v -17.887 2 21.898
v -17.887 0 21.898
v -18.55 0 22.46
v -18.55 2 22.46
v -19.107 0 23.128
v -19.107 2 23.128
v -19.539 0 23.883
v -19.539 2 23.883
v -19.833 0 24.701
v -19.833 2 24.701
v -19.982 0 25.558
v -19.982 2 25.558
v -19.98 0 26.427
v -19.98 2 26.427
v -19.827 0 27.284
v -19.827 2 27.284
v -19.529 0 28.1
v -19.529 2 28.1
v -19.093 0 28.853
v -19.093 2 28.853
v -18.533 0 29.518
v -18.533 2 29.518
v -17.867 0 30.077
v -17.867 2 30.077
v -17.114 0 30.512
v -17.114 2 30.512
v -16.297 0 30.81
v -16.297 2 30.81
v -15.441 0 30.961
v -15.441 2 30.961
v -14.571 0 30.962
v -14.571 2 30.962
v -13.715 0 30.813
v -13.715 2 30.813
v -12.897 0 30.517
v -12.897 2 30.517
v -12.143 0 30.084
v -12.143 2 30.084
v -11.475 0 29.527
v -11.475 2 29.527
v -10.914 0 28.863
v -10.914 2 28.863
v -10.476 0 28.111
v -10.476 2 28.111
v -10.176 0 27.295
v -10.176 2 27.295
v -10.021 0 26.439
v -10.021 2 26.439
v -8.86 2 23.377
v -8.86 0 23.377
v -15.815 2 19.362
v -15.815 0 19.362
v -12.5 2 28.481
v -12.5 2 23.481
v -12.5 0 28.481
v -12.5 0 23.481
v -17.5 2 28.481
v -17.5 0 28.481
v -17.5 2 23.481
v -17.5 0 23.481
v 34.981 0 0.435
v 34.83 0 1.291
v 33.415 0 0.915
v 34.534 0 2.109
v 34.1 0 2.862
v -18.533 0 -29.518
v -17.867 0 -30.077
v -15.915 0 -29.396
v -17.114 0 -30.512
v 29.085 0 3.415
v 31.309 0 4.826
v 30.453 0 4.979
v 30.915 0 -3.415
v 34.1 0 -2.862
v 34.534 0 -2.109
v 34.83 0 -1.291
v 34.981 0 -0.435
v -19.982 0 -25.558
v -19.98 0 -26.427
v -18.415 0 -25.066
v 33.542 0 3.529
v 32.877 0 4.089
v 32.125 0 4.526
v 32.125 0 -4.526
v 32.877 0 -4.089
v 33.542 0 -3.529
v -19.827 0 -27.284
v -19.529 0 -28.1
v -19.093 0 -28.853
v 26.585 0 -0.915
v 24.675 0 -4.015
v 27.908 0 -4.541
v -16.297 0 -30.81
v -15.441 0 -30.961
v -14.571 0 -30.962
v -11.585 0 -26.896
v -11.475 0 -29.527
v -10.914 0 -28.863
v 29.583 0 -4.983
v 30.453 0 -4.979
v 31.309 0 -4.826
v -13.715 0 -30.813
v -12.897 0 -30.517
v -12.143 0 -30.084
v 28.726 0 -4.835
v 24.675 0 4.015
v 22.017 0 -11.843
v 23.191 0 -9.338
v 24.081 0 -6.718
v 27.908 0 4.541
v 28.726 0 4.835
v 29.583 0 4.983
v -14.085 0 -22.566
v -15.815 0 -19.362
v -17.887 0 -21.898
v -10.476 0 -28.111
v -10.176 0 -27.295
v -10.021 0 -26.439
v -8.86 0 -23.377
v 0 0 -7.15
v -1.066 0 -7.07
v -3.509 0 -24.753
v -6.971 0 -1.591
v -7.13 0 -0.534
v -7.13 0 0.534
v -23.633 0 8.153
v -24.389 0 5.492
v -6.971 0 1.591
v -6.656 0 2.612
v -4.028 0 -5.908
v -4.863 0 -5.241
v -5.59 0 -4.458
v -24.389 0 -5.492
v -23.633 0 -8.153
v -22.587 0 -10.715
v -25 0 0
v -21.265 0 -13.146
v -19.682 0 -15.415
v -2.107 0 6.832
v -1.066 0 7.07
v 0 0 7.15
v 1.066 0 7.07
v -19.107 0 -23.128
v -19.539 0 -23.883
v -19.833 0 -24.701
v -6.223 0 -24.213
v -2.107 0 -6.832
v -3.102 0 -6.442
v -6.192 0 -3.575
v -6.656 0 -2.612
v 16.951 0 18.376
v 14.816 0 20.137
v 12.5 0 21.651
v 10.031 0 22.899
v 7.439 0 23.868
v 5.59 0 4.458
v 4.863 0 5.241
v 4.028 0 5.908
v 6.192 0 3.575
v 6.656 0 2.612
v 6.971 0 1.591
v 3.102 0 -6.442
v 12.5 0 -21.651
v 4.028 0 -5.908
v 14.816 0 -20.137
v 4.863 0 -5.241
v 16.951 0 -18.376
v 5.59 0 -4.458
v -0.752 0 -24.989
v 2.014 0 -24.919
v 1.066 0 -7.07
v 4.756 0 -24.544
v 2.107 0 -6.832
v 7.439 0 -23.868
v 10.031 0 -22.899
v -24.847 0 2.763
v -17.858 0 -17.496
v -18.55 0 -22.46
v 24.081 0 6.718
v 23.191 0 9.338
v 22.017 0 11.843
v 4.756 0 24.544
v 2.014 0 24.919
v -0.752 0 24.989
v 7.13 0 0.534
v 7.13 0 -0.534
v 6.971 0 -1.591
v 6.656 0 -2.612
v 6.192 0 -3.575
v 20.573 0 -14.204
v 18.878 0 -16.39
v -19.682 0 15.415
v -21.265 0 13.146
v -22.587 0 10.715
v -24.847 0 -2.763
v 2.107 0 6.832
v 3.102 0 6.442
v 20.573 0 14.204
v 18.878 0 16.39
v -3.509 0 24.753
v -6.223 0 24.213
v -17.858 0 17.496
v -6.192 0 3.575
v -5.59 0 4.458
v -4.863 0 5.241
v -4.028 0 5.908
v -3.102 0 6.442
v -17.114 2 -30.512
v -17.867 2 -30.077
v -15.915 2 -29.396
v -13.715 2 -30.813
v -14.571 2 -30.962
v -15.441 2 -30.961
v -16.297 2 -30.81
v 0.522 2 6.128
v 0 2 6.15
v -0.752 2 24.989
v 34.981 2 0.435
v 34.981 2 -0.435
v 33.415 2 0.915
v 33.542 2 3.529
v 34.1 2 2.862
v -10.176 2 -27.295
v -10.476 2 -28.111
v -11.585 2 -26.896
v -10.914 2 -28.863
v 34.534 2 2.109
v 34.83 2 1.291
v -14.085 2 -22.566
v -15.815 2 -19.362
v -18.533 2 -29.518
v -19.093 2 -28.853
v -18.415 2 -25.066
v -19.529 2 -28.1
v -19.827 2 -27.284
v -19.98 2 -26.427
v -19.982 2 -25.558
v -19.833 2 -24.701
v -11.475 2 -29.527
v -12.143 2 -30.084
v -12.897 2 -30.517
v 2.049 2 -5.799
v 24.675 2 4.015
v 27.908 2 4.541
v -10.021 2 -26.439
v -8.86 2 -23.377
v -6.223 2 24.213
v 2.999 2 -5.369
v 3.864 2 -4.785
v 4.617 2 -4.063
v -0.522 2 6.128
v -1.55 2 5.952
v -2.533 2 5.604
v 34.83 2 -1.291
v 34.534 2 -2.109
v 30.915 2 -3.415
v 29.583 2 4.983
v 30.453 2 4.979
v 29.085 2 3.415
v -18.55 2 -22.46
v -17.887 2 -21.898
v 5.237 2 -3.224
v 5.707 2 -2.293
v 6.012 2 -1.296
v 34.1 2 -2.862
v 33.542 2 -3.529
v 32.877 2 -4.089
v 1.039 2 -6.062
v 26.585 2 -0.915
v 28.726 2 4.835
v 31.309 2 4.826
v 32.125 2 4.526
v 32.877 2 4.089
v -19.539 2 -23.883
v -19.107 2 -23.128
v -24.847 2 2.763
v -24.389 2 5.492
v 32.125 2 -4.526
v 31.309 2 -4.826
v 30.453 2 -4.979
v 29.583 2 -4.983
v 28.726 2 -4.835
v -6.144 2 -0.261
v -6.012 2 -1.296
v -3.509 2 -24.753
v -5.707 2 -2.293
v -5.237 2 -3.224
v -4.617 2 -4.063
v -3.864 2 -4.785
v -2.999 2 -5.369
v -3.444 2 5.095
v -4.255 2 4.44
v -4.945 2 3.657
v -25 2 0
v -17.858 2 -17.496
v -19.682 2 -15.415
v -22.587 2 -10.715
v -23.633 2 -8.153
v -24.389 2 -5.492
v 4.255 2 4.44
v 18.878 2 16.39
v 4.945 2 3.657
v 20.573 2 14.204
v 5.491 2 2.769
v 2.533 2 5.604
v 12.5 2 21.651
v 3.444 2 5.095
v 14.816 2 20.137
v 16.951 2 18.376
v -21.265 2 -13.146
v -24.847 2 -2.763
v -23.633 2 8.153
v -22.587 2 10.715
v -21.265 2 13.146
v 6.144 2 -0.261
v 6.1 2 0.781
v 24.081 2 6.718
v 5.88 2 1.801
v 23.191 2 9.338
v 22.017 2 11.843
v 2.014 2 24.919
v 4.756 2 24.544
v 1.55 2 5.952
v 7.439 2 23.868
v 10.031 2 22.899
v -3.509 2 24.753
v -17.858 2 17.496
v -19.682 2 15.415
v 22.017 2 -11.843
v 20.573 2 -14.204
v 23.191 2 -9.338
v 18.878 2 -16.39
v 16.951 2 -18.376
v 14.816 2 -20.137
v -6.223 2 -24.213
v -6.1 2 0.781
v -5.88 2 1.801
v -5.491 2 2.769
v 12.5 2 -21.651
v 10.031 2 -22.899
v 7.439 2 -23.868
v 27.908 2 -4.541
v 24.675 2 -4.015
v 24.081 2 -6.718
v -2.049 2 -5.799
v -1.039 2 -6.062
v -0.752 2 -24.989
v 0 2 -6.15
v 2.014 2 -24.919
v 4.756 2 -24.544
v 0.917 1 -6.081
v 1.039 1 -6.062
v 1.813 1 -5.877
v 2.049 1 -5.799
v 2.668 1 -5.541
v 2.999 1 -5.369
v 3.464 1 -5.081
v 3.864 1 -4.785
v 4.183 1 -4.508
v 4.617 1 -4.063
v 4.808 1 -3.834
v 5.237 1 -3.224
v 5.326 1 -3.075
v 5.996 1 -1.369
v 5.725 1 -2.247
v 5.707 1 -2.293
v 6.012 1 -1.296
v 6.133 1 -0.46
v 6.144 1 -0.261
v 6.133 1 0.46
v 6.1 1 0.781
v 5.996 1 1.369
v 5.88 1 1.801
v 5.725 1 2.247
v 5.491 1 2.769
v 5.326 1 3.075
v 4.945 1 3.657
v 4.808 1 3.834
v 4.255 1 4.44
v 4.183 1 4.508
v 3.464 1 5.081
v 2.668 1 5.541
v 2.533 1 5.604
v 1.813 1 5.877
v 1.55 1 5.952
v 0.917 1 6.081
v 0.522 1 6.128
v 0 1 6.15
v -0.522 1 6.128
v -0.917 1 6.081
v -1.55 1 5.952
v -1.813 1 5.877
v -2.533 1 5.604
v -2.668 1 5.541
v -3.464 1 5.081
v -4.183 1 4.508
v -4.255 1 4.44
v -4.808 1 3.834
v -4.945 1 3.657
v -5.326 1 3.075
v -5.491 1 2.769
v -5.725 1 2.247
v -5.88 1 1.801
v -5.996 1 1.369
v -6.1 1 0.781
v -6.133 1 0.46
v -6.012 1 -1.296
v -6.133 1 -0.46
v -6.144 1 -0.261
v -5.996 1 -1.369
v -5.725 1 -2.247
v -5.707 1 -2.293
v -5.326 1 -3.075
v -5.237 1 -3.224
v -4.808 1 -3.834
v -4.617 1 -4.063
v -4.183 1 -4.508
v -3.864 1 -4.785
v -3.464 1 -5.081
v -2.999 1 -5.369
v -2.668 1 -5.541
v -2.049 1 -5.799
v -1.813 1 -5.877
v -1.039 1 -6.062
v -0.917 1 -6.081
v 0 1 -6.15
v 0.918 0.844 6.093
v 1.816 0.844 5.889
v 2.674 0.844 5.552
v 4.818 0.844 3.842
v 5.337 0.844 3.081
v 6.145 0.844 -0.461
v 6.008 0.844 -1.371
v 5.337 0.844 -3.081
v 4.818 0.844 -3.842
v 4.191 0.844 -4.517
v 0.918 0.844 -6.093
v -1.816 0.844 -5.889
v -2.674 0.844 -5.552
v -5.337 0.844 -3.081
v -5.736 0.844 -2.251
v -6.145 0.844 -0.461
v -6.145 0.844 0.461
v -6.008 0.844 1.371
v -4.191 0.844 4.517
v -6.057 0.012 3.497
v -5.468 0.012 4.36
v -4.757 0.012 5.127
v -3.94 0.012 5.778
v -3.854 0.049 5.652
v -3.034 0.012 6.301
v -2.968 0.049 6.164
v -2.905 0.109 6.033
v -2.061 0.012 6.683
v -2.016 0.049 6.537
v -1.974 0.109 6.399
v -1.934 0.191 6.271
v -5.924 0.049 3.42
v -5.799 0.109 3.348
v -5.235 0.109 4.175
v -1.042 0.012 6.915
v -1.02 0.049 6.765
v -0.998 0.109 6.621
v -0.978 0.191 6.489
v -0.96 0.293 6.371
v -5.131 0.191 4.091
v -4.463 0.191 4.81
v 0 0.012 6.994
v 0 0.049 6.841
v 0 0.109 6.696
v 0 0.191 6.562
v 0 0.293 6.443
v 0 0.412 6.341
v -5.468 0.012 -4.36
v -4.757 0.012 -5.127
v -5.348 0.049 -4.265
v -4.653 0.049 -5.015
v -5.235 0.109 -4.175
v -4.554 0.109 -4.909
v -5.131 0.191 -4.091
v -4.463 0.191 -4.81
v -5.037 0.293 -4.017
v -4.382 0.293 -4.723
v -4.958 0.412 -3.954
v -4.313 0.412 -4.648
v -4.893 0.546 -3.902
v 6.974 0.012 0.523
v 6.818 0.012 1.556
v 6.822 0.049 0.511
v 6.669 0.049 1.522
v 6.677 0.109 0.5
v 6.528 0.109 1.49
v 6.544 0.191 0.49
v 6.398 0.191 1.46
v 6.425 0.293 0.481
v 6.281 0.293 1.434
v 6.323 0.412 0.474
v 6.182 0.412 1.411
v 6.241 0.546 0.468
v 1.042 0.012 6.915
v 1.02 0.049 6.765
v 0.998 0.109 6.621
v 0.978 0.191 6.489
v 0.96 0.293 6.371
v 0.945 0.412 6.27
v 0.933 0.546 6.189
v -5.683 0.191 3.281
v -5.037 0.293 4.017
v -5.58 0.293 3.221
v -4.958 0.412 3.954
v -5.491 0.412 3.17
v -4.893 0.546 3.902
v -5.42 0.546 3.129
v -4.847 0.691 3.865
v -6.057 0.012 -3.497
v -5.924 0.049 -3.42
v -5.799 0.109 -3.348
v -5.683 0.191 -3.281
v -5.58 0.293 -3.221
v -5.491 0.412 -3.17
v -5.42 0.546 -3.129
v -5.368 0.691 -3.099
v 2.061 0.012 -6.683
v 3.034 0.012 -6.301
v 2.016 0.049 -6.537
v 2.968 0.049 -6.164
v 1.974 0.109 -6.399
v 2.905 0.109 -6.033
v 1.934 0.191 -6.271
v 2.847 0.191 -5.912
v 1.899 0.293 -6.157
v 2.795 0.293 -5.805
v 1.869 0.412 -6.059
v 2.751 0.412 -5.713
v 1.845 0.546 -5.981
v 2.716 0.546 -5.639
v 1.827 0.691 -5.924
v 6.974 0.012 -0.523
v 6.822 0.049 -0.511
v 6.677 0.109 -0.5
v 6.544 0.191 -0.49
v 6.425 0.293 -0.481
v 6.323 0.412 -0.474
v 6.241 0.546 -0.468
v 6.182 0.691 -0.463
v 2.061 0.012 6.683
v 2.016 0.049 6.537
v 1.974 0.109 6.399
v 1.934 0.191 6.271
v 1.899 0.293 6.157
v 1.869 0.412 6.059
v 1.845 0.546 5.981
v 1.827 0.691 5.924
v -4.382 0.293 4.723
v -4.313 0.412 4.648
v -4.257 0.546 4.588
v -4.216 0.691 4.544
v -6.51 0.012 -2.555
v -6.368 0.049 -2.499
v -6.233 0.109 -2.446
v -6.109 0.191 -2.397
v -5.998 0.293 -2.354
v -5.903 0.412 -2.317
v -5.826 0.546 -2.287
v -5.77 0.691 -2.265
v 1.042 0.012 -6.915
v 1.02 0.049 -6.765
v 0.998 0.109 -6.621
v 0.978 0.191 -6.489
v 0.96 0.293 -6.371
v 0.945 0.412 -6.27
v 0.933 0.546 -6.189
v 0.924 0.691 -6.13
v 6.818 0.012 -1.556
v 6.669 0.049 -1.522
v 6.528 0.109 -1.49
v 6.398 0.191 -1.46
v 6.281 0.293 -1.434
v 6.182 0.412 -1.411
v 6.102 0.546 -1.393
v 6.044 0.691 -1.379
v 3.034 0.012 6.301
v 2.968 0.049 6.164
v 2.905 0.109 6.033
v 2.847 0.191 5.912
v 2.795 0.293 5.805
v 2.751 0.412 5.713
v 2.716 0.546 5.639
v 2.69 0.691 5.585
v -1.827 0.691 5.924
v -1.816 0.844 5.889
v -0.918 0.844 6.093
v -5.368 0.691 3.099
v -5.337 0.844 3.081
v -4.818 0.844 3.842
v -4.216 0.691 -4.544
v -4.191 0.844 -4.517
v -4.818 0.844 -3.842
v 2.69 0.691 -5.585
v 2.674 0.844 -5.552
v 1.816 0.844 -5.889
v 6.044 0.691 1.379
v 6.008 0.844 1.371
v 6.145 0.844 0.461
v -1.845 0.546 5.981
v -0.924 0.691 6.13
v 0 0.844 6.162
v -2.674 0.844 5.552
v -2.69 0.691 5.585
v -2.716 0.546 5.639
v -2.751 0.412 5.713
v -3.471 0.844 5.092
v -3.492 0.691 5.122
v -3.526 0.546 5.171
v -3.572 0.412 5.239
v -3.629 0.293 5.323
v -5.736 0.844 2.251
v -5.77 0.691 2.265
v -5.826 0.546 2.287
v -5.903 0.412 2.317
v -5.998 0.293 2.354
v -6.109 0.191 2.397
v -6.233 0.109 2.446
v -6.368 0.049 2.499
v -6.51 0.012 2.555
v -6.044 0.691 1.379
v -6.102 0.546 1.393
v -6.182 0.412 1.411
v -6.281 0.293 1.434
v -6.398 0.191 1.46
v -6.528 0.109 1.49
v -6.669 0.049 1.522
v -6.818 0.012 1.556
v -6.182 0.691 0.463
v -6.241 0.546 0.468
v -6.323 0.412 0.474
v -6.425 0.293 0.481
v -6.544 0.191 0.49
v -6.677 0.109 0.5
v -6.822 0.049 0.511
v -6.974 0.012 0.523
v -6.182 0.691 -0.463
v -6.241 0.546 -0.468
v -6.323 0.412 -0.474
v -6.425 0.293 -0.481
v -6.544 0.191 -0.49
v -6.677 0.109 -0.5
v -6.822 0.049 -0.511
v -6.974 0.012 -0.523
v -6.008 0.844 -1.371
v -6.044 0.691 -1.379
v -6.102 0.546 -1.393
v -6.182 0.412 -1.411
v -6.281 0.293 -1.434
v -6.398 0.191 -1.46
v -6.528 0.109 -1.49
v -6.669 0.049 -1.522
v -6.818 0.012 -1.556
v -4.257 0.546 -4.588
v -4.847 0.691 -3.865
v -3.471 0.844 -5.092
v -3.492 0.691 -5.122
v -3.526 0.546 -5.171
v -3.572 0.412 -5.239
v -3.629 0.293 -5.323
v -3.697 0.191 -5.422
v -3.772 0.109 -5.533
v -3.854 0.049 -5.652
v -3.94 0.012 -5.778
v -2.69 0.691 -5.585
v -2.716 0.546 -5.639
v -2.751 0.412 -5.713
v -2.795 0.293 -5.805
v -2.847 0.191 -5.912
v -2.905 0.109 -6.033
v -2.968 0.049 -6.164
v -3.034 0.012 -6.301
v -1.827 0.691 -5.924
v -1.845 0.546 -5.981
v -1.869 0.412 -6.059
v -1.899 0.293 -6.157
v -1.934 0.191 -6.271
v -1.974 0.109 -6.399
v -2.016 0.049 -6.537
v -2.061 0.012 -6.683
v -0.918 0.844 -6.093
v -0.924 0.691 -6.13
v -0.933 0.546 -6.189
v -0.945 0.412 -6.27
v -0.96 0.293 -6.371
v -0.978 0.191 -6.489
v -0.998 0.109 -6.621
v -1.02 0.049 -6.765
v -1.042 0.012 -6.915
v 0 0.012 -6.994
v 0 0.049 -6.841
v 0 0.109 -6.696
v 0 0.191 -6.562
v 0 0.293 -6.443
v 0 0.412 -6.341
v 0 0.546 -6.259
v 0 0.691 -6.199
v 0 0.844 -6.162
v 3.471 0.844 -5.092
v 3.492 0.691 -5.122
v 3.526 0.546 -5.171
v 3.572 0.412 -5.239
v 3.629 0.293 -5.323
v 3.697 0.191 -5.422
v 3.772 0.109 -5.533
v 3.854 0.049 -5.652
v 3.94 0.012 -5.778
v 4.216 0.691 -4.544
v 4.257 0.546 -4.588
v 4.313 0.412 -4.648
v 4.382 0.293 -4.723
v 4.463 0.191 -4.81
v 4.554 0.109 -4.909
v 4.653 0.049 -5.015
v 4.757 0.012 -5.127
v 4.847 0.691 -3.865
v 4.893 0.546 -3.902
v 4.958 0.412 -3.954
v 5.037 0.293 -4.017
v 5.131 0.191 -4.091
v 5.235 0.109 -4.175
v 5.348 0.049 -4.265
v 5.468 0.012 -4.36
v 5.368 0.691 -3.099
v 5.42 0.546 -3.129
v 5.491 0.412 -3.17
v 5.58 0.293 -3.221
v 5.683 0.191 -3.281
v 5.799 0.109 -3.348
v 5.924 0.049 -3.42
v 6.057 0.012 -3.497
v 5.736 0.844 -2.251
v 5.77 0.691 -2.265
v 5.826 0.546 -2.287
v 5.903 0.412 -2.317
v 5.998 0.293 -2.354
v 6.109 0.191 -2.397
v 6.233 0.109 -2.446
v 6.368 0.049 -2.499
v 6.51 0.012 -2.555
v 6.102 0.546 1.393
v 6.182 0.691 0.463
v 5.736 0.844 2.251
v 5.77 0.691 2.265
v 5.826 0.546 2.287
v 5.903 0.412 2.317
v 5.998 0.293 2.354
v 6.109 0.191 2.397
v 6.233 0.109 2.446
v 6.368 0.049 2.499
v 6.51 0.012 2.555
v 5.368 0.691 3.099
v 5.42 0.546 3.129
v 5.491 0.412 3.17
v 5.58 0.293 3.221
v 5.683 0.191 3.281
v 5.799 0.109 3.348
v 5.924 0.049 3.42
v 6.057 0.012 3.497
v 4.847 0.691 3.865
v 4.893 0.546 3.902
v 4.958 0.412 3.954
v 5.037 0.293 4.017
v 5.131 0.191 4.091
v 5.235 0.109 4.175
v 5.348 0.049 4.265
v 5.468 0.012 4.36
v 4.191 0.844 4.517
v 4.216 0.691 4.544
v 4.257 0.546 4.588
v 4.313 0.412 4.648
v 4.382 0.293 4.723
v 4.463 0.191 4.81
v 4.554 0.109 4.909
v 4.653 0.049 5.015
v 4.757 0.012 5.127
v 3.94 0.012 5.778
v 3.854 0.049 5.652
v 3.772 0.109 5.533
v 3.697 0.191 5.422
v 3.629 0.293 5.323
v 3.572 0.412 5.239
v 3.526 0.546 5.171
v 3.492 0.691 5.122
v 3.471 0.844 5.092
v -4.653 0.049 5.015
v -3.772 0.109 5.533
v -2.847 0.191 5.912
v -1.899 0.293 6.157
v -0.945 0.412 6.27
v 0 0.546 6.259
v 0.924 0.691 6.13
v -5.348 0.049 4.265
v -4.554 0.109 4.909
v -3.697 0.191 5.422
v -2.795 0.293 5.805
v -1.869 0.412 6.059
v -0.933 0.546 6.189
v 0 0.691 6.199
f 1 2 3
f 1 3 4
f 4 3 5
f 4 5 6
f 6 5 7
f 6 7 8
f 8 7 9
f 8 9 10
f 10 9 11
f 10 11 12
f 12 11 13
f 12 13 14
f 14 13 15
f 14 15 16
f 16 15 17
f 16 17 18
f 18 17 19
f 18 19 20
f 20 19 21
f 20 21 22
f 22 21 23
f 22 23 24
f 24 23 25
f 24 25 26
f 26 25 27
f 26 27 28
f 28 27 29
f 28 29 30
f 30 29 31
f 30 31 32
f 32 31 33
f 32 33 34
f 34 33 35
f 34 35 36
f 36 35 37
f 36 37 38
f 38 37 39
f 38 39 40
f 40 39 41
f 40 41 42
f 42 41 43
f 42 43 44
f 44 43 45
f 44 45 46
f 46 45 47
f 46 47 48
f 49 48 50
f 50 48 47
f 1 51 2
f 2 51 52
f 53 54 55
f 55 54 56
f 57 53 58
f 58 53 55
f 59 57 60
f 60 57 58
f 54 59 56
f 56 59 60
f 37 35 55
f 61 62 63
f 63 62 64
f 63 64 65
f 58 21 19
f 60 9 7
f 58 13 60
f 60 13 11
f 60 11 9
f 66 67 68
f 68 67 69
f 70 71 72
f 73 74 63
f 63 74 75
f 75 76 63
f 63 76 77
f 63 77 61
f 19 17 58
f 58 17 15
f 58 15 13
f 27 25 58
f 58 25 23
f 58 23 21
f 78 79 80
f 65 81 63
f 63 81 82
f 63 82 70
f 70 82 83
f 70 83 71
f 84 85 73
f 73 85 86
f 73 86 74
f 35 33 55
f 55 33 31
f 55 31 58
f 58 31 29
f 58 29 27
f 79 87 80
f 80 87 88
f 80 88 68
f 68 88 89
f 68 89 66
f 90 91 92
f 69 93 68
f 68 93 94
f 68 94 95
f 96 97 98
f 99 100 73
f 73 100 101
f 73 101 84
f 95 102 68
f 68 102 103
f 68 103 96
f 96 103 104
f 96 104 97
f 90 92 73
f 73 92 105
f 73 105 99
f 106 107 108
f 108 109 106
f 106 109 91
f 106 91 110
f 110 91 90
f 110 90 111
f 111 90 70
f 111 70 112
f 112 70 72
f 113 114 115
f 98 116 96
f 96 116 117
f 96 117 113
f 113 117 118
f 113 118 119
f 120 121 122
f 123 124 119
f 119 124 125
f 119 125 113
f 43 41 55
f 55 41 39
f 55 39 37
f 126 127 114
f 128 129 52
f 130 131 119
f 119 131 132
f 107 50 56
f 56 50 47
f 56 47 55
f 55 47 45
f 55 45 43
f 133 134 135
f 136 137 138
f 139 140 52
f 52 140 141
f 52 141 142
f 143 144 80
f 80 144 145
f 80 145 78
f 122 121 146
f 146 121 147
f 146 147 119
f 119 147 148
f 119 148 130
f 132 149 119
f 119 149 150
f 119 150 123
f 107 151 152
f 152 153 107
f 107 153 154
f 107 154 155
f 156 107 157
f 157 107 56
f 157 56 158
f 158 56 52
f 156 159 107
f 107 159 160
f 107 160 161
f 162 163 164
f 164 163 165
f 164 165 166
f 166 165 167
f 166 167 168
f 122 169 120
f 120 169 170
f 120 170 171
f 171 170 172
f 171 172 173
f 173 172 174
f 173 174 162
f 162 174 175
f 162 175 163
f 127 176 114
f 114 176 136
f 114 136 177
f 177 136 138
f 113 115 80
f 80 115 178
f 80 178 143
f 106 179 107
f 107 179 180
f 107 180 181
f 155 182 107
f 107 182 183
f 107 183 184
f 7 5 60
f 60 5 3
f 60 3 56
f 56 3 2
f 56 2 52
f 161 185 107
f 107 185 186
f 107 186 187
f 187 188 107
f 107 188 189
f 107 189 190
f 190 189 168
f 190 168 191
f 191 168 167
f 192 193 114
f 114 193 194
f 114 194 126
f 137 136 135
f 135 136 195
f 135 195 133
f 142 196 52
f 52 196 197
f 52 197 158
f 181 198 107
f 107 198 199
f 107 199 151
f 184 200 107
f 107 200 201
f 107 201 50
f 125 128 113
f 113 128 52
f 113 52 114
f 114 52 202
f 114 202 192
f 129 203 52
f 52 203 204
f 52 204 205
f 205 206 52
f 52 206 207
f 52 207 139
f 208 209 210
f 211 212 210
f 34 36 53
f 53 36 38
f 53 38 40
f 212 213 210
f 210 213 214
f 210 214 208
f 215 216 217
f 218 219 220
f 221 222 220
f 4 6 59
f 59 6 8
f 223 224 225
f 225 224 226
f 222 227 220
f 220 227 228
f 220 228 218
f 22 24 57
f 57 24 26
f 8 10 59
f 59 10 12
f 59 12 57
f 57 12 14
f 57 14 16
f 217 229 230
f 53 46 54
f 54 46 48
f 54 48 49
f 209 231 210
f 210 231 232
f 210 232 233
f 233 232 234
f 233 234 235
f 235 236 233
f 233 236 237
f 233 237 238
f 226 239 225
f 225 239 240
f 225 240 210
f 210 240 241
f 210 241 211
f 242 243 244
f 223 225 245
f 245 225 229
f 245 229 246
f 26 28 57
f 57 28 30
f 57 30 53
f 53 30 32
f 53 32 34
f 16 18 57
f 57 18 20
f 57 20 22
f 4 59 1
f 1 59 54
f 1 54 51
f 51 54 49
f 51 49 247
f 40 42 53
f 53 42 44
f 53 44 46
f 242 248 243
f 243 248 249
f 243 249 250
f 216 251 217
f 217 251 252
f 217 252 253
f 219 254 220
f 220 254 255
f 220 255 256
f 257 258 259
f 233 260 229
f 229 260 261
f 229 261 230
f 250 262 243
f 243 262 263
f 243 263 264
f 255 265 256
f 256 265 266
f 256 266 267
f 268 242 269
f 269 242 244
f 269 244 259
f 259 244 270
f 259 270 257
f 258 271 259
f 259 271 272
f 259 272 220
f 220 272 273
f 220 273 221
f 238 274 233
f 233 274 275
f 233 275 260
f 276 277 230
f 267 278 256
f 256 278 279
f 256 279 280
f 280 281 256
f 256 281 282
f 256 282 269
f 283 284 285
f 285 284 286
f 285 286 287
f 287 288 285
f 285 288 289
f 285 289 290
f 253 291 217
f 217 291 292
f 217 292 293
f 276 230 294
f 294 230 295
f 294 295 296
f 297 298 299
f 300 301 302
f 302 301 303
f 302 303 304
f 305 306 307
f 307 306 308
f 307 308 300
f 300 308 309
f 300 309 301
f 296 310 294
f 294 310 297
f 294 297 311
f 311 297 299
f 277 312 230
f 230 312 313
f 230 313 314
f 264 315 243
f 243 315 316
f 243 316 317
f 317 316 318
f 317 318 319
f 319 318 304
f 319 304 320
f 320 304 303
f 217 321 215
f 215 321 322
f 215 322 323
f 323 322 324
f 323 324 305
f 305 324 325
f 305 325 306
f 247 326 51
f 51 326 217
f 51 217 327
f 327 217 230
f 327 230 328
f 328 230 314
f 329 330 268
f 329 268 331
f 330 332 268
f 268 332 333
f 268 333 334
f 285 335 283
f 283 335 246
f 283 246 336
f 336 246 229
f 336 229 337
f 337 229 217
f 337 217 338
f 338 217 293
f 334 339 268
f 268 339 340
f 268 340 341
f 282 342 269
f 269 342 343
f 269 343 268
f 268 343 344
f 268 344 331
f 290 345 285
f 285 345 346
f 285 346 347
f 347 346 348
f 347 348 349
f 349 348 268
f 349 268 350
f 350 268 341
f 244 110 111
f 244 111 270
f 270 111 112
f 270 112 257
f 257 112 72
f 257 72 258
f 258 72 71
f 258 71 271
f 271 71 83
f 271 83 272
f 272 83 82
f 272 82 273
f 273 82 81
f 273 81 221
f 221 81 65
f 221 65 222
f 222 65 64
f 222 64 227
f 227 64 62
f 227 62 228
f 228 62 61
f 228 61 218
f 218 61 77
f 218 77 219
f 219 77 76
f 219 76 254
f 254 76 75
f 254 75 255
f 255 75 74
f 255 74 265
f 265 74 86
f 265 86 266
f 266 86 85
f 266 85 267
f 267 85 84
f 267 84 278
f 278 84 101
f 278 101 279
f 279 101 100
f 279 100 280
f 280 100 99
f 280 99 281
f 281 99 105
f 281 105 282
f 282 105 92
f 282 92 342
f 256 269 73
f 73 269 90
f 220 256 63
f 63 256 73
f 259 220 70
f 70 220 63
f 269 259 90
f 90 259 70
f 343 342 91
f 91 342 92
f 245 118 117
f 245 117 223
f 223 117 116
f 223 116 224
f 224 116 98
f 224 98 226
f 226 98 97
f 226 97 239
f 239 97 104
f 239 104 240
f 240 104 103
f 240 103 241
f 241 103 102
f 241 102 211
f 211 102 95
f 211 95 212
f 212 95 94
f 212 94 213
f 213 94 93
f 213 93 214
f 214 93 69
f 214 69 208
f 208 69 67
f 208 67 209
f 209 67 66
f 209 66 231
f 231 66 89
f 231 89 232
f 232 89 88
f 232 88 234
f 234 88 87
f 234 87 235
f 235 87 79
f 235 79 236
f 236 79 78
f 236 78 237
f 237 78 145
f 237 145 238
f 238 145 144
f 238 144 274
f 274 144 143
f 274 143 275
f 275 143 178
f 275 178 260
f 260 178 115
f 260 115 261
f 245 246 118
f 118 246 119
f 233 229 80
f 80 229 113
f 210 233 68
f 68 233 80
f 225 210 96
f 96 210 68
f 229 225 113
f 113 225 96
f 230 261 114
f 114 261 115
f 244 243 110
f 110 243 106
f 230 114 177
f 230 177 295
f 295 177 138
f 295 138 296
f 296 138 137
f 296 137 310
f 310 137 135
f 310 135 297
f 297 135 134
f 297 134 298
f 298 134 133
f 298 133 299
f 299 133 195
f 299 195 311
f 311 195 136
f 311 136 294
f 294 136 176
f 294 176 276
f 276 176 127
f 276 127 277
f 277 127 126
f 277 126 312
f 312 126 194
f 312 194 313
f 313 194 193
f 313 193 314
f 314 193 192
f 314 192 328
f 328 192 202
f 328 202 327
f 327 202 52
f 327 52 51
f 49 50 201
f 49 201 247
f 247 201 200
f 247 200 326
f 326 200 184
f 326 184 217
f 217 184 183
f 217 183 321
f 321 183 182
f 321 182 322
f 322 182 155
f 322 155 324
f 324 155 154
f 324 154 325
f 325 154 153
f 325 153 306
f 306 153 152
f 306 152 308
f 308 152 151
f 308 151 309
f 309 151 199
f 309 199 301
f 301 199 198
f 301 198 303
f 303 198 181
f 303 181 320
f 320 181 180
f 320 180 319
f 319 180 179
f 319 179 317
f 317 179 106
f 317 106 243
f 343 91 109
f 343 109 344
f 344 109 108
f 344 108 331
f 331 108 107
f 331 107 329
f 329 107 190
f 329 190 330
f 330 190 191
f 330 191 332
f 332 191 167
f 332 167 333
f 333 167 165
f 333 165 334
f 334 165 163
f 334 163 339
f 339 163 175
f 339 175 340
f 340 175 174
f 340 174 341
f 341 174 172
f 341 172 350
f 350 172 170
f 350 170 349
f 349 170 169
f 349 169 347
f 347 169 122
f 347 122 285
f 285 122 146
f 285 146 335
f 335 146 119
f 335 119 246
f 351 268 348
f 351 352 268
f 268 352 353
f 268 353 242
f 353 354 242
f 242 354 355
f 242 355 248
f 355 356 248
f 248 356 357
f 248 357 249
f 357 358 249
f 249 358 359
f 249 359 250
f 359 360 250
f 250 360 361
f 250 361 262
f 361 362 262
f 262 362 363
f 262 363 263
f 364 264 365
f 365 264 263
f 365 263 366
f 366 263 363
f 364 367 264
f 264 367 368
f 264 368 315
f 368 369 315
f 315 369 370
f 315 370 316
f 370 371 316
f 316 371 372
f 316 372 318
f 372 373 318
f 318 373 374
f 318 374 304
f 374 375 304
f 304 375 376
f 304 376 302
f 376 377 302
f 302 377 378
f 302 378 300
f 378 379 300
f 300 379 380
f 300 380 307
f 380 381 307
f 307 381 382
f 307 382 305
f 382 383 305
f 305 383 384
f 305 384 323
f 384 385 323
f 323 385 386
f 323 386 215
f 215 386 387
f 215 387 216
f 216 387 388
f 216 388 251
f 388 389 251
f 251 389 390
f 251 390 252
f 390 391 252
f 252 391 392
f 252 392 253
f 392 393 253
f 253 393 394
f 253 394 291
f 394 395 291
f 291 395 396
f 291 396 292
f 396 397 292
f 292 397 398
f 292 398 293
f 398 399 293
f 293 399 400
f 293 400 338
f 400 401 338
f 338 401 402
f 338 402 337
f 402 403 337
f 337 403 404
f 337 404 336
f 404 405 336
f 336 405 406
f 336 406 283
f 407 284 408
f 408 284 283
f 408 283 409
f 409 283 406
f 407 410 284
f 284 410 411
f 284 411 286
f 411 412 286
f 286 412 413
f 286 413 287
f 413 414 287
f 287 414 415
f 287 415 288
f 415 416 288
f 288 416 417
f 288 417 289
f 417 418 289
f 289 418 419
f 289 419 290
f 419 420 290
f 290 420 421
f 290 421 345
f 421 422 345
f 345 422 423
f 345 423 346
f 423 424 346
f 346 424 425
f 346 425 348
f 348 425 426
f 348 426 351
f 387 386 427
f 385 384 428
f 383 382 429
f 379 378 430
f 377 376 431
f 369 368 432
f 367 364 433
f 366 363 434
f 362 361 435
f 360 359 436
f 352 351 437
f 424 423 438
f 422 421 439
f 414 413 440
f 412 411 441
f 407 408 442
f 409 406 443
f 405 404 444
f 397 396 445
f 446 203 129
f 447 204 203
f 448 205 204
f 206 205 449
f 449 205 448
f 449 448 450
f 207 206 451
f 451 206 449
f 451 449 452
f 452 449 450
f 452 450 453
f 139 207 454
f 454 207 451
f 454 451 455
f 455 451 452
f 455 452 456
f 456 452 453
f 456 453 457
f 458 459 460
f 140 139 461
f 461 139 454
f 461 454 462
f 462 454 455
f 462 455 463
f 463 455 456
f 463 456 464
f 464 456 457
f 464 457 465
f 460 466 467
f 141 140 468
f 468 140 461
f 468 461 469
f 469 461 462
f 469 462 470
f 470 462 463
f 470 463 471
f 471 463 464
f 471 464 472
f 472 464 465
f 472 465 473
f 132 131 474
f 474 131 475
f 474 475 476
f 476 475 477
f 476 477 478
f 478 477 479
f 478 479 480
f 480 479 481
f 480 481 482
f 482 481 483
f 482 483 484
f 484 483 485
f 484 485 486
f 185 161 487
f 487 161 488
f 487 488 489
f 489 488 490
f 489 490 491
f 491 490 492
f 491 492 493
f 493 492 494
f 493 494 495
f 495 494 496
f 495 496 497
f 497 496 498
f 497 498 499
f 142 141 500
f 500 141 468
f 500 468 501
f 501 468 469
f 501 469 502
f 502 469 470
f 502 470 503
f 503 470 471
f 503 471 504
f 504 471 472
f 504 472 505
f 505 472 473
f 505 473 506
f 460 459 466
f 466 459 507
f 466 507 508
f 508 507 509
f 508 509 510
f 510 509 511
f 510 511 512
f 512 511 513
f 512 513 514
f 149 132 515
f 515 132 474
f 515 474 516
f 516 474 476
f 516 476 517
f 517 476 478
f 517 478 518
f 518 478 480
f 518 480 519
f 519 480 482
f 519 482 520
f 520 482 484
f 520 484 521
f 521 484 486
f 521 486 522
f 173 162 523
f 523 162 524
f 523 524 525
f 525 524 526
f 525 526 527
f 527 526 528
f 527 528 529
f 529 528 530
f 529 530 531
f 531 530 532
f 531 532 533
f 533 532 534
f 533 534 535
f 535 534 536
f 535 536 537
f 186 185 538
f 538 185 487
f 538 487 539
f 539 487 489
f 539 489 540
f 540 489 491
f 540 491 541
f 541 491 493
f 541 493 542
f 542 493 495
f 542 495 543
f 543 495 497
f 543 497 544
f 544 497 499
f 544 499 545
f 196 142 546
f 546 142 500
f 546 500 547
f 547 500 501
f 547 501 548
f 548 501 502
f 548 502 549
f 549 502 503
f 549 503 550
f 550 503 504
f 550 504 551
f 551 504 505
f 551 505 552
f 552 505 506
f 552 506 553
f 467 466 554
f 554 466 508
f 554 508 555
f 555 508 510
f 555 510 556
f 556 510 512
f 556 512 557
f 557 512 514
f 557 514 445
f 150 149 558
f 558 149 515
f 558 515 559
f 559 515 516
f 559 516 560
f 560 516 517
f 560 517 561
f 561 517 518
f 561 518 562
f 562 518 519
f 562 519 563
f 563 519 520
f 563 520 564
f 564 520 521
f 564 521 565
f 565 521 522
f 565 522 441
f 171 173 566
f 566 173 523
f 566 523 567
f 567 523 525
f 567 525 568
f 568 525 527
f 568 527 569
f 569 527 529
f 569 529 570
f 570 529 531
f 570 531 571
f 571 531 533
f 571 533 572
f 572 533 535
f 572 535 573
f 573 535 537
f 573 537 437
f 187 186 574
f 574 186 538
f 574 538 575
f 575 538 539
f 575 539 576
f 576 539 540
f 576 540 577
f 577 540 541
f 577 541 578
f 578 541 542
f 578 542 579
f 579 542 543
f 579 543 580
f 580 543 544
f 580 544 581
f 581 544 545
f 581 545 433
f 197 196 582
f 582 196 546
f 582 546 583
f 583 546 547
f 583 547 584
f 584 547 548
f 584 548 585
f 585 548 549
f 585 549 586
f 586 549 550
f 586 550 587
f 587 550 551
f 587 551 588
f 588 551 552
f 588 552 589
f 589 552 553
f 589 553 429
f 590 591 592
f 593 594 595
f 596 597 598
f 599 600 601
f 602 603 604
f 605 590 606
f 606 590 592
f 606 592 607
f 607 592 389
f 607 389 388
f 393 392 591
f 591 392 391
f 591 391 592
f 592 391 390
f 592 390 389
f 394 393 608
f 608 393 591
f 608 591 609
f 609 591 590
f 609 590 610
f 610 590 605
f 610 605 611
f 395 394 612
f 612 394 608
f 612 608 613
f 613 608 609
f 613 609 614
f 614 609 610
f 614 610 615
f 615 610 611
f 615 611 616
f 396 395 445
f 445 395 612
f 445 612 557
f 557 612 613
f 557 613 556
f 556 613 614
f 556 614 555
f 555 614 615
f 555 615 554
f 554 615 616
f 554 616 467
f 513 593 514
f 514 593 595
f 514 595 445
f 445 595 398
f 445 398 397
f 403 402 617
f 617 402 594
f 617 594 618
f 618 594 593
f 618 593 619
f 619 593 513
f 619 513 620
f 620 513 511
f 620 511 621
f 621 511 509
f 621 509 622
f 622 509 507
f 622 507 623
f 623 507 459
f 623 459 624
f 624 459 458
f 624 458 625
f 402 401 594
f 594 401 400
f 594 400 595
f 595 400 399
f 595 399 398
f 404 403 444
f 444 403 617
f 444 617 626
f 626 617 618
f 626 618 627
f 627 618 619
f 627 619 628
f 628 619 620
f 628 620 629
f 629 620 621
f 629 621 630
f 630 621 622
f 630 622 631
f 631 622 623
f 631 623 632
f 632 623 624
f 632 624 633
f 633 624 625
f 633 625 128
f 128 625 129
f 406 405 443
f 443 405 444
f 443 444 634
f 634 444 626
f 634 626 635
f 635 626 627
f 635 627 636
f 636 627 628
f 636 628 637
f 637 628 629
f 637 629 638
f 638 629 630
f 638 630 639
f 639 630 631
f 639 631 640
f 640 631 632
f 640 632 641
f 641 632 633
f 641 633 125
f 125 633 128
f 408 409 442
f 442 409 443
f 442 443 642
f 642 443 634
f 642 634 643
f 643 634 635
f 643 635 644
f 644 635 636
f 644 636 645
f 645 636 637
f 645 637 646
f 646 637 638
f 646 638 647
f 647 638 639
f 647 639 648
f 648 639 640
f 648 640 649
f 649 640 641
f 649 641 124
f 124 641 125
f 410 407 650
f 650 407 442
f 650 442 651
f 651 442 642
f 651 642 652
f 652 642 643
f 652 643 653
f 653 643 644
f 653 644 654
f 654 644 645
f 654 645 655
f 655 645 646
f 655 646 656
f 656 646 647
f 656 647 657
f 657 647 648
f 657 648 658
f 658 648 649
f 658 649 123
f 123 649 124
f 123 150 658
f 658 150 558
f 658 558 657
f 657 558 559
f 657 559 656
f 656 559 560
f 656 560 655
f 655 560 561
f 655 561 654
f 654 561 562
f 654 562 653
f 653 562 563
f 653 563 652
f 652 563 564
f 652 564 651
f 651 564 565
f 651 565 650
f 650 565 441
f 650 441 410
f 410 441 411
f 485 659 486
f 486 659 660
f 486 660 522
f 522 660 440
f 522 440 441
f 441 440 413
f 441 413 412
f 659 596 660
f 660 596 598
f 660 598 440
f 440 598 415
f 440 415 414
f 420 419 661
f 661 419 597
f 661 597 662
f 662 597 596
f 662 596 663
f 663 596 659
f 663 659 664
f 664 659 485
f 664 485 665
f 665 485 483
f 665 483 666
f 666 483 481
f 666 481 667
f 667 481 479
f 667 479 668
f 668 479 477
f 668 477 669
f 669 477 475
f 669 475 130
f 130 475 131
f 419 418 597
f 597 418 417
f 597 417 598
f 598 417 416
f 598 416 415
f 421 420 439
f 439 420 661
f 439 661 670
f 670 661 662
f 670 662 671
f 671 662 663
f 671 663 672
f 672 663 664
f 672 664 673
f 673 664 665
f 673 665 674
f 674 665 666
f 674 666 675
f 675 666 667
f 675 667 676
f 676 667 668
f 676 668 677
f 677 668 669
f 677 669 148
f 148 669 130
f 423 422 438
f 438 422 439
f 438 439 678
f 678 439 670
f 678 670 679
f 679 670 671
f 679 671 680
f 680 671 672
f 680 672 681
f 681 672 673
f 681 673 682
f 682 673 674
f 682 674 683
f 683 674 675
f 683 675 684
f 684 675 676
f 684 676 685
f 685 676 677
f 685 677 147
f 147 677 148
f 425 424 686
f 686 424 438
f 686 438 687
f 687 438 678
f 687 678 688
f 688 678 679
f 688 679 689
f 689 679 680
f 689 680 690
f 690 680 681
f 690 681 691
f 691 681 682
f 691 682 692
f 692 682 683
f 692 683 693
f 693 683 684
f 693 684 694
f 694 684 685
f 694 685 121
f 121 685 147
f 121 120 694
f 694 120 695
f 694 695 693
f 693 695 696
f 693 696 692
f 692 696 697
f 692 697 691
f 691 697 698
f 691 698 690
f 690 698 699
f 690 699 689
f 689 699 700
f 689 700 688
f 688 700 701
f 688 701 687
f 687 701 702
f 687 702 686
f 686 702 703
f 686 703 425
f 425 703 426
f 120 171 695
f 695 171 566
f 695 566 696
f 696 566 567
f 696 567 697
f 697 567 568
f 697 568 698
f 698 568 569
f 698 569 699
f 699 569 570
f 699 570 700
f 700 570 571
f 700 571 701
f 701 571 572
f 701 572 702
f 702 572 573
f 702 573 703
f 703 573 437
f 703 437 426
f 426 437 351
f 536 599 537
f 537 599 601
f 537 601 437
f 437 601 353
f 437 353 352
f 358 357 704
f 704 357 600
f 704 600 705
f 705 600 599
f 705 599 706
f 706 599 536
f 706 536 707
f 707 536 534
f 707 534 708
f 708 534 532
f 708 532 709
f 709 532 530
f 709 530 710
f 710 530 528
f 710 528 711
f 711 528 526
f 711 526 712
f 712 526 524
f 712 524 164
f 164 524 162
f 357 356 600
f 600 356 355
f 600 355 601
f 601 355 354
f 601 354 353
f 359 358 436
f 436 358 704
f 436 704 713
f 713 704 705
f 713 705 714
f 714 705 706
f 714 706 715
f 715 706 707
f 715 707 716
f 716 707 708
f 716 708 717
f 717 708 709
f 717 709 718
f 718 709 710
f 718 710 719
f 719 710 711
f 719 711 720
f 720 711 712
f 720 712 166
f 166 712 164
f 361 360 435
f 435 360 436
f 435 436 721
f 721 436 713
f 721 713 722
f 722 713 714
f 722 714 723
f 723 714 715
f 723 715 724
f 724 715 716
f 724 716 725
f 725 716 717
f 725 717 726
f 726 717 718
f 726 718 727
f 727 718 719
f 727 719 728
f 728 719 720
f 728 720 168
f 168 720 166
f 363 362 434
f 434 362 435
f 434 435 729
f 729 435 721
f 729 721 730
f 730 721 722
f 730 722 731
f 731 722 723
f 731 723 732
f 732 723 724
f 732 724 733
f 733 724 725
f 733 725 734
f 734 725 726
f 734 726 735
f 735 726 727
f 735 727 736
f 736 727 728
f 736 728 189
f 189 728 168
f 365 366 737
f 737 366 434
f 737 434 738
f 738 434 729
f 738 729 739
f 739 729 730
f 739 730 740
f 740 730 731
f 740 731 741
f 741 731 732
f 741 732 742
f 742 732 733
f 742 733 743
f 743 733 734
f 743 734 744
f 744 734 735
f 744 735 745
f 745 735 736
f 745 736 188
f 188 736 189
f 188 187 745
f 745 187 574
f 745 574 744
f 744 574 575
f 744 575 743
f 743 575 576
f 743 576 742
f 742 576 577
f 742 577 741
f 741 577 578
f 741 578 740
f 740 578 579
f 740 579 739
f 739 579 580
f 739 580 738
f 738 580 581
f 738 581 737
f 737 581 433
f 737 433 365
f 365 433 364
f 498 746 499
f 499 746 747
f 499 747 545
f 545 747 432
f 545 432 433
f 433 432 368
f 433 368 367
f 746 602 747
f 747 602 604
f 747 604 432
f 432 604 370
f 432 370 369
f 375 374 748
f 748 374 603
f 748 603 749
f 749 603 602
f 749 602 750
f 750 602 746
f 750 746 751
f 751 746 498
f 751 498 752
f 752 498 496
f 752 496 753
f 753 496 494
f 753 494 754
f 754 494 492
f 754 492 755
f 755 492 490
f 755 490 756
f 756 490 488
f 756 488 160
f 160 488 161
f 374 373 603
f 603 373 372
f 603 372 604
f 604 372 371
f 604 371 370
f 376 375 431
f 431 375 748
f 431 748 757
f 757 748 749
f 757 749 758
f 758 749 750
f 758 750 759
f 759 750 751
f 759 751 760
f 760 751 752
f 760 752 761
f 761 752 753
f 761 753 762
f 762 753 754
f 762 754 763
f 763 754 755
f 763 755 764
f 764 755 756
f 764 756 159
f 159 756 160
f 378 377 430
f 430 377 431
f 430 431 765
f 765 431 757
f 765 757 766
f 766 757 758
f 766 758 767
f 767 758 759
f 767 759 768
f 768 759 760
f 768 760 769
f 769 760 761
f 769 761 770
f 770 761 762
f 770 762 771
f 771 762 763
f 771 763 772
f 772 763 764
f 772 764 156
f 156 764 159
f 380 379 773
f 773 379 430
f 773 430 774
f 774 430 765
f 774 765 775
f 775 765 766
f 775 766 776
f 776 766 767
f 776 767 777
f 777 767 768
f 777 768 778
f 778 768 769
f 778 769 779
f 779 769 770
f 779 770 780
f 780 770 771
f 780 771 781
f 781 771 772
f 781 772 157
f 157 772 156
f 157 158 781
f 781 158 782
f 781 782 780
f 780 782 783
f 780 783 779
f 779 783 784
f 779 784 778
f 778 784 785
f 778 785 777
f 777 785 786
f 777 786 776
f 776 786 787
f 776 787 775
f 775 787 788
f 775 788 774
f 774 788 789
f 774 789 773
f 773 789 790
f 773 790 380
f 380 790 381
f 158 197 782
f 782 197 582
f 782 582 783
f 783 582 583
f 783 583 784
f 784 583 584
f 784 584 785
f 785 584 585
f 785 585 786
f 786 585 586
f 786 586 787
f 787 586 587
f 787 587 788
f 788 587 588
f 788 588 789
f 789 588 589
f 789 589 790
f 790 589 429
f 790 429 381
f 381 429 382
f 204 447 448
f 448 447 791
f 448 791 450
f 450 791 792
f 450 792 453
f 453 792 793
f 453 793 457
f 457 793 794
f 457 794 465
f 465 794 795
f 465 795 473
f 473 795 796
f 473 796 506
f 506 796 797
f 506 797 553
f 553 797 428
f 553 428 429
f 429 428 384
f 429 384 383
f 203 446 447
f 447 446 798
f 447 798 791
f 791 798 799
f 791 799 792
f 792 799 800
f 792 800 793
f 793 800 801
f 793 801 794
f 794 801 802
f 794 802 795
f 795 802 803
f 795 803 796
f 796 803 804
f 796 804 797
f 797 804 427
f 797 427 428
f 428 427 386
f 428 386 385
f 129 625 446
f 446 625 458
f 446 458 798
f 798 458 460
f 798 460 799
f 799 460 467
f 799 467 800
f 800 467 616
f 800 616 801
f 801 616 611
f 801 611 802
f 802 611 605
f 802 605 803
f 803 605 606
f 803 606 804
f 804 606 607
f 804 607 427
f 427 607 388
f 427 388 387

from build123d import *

# Parameters (mm, degrees)
SKETCH1_W           = 5
SKETCH1_H           = 5
BOSS_EXTRUDE1_DEPTH = 2
CUT_EXTRUDE1_REACH  = 48.785
SKETCH2_R           = 6.15
FILLET1_R           = 1


with BuildPart() as part:
    # Sketch1 → Boss-Extrude1 (new body)
    with BuildSketch(Plane(origin=(0, 0, 0), x_dir=(1, 0, 0), z_dir=(0, 1, 0))):
        with BuildLine():
            ThreePointArc((-8.860443092, -23.377180074), (12.5, -21.650635095), (24.675453359, -4.01522123))
            Line((24.675453359, -4.01522123), (27.907701299, -4.541176736))
            ThreePointArc((27.907701299, -4.541176736), (35, 0), (27.907701299, 4.541176736))
            Line((27.907701299, 4.541176736), (24.675453359, 4.01522123))
            ThreePointArc((24.675453359, 4.01522123), (12.5, 21.650635095), (-8.860443092, 23.377180074))
            Line((-8.860443092, 23.377180074), (-10.021076233, 26.439366654))
            ThreePointArc((-10.021076233, 26.439366654), (-17.5, 30.310889132), (-17.886625066, 21.898189918))
            Line((-17.886625066, 21.898189918), (-15.815010267, 19.361958844))
            ThreePointArc((-15.815010267, 19.361958844), (-25, 0), (-15.815010267, -19.361958844))
            Line((-15.815010267, -19.361958844), (-17.886625066, -21.898189918))
            ThreePointArc((-17.886625066, -21.898189918), (-17.5, -30.310889132), (-10.021076233, -26.439366654))
            Line((-10.021076233, -26.439366654), (-8.860443092, -23.377180074))
        make_face()
        with Locations((-15, -25.980762114)):
            Rectangle(SKETCH1_W, SKETCH1_H, mode=Mode.SUBTRACT)
        Polygon((26.584936491, 0.915063509), (30.915063509, 3.415063509), (33.415063509, -0.915063509), (29.084936491, -3.415063509), align=None, mode=Mode.SUBTRACT)
        Polygon((-11.584936491, 26.895825623), (-14.084936491, 22.565698604), (-18.415063509, 25.065698604), (-15.915063509, 29.395825623), align=None, mode=Mode.SUBTRACT)
    extrude(amount=BOSS_EXTRUDE1_DEPTH)

    # Sketch2 → Cut-Extrude1 (cut, up to next)
    with BuildSketch(Plane(origin=(0, 0, 0), x_dir=(-1, 0, 0), z_dir=(0, -1, 0)), mode=Mode.PRIVATE) as cut_extrude1_sk1:
        Circle(SKETCH2_R)
    cut_extrude1_tool1 = extrude(cut_extrude1_sk1.sketch, amount=-CUT_EXTRUDE1_REACH, mode=Mode.PRIVATE) & part.part
    add(cut_extrude1_tool1.solids().sort_by_distance((0, 0, 0))[0], mode=Mode.SUBTRACT)

    # Fillet1
    fillet1_edges = [part.edges().sort_by_distance(p)[0] for p in [
        (6.15, 0, 0),
    ]]
    fillet(fillet1_edges, radius=FILLET1_R)


solid = part.part
